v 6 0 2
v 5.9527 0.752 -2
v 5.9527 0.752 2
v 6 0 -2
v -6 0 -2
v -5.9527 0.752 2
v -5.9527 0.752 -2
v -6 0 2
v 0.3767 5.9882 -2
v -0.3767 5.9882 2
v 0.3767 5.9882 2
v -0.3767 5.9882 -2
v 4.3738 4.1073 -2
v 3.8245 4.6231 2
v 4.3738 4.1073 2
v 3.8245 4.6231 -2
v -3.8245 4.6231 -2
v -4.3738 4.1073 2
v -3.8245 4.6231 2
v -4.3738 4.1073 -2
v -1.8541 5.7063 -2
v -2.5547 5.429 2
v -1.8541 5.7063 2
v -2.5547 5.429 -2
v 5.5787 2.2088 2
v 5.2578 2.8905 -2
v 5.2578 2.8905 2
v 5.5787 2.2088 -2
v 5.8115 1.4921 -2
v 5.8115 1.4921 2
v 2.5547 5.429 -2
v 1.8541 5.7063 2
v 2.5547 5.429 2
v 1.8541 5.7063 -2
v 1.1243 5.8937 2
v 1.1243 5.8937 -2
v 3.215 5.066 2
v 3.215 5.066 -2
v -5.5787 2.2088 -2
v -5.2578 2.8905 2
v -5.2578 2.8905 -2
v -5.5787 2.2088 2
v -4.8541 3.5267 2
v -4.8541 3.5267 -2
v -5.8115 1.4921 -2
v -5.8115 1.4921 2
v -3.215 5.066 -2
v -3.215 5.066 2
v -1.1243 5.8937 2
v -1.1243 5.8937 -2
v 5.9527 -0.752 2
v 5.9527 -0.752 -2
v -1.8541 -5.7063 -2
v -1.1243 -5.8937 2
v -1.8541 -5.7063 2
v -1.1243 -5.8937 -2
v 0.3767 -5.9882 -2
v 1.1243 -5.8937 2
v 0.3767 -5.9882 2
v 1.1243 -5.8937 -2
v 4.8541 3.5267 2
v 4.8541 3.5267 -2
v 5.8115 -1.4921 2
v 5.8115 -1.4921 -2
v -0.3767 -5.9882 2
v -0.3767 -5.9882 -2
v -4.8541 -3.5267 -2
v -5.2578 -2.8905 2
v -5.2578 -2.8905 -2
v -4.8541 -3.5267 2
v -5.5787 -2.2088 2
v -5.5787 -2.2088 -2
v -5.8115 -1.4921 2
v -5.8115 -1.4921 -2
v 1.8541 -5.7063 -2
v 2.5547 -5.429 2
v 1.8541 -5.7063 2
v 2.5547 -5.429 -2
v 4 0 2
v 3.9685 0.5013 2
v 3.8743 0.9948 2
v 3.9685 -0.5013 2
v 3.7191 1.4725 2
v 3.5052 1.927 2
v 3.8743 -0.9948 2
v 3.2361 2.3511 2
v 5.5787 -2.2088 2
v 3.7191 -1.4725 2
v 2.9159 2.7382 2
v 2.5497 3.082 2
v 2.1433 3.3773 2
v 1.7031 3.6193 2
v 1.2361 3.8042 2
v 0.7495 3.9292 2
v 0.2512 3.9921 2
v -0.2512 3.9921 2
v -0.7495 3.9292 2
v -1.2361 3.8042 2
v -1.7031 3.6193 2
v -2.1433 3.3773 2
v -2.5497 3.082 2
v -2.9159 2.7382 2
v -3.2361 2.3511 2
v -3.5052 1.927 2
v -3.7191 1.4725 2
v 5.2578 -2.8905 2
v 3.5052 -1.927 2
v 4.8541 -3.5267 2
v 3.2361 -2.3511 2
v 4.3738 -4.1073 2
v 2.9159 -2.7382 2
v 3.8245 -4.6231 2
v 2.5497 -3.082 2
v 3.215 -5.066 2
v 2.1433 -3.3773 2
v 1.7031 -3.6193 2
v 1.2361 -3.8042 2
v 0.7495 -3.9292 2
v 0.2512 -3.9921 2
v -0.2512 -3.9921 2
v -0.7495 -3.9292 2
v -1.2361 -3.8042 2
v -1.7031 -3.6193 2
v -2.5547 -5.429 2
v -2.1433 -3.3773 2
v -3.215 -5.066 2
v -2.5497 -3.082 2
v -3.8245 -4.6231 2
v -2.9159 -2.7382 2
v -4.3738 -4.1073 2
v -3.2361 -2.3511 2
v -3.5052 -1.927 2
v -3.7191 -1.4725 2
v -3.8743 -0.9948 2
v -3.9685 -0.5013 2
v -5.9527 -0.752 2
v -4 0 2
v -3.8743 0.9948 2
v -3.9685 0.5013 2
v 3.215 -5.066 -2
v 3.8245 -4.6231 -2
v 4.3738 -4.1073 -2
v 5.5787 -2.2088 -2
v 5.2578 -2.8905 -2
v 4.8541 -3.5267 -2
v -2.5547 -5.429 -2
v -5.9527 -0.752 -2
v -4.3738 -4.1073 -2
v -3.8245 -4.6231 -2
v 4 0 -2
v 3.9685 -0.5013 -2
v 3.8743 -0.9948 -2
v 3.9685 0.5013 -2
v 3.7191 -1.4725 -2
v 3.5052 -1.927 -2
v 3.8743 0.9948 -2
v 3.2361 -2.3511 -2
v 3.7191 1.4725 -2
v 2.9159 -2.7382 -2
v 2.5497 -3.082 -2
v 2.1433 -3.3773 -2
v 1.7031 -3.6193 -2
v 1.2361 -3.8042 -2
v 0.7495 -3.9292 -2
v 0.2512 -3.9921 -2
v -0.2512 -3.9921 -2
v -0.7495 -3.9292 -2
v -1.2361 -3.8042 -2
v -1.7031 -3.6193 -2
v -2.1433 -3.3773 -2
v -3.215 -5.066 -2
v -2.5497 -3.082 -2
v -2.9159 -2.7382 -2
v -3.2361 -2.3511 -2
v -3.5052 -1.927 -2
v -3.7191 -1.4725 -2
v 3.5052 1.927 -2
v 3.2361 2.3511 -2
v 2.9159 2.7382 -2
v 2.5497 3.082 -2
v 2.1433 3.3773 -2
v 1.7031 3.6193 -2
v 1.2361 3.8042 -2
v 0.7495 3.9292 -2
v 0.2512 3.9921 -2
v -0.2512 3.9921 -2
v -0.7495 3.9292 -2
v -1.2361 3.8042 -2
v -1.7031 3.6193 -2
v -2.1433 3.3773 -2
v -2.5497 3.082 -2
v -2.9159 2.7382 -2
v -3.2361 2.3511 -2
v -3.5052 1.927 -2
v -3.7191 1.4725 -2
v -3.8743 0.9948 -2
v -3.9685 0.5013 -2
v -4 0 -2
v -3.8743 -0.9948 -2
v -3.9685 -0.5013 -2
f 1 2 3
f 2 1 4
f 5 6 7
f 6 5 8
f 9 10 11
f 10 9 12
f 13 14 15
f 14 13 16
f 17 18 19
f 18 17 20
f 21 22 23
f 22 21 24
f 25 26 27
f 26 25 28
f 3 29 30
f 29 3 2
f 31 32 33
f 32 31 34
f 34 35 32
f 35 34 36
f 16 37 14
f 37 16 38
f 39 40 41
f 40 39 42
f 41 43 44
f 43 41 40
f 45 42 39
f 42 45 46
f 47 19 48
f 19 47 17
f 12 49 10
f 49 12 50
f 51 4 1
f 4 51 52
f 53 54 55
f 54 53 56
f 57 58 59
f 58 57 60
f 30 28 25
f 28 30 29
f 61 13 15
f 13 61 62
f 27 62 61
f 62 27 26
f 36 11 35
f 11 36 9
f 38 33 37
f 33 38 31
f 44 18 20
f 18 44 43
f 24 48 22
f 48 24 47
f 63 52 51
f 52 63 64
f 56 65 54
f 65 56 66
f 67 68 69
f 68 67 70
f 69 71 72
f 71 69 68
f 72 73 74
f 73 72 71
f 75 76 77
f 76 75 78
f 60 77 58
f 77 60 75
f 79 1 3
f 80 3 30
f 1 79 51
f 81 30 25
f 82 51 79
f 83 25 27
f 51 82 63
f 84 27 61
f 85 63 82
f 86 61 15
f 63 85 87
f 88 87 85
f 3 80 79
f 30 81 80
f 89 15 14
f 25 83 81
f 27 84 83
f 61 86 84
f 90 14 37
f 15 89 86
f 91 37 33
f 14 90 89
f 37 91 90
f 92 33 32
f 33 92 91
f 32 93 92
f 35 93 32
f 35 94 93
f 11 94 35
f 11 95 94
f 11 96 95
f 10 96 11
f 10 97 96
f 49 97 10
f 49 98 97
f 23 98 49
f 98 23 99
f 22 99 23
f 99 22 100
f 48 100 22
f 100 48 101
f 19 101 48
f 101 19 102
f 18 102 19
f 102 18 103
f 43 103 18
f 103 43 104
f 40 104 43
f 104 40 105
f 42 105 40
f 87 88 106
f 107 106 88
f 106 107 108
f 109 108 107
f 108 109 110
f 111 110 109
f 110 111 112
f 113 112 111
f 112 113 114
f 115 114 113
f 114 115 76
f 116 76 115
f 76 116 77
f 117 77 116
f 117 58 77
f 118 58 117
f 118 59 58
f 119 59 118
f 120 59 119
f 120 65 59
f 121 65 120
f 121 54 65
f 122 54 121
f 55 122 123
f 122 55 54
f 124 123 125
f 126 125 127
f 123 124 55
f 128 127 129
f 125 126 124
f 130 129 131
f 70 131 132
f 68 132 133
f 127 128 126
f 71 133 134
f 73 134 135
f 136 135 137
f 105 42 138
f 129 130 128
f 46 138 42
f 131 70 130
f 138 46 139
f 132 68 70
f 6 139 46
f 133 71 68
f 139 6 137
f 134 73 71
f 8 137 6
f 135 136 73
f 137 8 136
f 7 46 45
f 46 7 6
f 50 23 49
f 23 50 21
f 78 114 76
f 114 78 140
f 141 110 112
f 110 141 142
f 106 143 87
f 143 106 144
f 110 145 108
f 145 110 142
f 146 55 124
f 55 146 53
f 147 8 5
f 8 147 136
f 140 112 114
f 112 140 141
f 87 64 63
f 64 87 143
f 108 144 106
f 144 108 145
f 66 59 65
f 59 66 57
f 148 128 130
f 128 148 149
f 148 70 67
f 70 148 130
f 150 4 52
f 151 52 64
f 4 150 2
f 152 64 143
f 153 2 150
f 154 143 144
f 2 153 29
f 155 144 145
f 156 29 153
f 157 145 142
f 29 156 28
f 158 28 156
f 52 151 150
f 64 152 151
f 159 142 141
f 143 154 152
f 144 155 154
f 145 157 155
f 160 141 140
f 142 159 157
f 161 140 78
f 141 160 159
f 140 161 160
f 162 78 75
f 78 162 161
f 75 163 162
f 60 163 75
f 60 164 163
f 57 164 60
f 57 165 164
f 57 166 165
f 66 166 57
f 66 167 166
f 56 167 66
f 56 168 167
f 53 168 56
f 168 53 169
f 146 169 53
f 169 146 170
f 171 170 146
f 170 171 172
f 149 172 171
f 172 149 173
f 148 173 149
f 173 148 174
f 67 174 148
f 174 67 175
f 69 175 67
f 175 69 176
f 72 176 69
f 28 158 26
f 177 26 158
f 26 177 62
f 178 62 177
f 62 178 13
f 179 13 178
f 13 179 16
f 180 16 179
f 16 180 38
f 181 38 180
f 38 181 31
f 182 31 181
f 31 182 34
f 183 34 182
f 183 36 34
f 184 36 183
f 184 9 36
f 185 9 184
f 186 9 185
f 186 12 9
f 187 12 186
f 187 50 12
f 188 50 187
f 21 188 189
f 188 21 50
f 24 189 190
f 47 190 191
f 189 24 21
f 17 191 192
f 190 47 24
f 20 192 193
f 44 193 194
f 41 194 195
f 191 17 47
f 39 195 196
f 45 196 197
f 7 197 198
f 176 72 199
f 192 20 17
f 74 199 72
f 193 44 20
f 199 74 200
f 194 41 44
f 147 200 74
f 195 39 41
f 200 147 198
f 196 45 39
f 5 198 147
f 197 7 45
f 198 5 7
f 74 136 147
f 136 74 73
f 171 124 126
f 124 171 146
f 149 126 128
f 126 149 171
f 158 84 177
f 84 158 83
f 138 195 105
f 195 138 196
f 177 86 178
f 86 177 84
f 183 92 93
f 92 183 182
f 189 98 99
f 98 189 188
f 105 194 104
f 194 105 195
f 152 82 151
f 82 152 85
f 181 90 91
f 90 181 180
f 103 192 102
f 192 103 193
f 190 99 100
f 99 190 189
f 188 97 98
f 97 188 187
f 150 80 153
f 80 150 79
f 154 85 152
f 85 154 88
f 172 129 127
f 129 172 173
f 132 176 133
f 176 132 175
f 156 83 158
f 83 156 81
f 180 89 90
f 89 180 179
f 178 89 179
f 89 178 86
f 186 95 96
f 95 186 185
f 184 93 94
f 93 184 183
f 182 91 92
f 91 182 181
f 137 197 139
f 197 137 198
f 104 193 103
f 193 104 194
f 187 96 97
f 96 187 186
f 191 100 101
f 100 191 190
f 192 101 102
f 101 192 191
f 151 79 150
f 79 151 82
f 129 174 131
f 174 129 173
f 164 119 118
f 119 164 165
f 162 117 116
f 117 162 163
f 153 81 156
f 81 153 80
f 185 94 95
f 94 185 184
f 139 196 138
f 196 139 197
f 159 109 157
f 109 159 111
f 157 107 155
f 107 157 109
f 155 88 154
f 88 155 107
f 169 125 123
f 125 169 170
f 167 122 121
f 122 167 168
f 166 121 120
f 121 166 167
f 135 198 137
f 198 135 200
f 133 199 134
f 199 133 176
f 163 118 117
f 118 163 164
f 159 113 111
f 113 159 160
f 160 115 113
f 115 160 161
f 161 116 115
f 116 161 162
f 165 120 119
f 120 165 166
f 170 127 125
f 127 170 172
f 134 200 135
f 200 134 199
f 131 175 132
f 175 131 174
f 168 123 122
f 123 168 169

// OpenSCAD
$fn = 50;


difference() {
	union() {
		translate(v = [0, 0, -2.0000000000]) {
			cylinder(h = 4, r = 6.0000000000);
		}
	}
	union() {
		translate(v = [0, 0, -100.0000000000]) {
			cylinder(h = 200, r = 4.0000000000);
		}
	}
}
